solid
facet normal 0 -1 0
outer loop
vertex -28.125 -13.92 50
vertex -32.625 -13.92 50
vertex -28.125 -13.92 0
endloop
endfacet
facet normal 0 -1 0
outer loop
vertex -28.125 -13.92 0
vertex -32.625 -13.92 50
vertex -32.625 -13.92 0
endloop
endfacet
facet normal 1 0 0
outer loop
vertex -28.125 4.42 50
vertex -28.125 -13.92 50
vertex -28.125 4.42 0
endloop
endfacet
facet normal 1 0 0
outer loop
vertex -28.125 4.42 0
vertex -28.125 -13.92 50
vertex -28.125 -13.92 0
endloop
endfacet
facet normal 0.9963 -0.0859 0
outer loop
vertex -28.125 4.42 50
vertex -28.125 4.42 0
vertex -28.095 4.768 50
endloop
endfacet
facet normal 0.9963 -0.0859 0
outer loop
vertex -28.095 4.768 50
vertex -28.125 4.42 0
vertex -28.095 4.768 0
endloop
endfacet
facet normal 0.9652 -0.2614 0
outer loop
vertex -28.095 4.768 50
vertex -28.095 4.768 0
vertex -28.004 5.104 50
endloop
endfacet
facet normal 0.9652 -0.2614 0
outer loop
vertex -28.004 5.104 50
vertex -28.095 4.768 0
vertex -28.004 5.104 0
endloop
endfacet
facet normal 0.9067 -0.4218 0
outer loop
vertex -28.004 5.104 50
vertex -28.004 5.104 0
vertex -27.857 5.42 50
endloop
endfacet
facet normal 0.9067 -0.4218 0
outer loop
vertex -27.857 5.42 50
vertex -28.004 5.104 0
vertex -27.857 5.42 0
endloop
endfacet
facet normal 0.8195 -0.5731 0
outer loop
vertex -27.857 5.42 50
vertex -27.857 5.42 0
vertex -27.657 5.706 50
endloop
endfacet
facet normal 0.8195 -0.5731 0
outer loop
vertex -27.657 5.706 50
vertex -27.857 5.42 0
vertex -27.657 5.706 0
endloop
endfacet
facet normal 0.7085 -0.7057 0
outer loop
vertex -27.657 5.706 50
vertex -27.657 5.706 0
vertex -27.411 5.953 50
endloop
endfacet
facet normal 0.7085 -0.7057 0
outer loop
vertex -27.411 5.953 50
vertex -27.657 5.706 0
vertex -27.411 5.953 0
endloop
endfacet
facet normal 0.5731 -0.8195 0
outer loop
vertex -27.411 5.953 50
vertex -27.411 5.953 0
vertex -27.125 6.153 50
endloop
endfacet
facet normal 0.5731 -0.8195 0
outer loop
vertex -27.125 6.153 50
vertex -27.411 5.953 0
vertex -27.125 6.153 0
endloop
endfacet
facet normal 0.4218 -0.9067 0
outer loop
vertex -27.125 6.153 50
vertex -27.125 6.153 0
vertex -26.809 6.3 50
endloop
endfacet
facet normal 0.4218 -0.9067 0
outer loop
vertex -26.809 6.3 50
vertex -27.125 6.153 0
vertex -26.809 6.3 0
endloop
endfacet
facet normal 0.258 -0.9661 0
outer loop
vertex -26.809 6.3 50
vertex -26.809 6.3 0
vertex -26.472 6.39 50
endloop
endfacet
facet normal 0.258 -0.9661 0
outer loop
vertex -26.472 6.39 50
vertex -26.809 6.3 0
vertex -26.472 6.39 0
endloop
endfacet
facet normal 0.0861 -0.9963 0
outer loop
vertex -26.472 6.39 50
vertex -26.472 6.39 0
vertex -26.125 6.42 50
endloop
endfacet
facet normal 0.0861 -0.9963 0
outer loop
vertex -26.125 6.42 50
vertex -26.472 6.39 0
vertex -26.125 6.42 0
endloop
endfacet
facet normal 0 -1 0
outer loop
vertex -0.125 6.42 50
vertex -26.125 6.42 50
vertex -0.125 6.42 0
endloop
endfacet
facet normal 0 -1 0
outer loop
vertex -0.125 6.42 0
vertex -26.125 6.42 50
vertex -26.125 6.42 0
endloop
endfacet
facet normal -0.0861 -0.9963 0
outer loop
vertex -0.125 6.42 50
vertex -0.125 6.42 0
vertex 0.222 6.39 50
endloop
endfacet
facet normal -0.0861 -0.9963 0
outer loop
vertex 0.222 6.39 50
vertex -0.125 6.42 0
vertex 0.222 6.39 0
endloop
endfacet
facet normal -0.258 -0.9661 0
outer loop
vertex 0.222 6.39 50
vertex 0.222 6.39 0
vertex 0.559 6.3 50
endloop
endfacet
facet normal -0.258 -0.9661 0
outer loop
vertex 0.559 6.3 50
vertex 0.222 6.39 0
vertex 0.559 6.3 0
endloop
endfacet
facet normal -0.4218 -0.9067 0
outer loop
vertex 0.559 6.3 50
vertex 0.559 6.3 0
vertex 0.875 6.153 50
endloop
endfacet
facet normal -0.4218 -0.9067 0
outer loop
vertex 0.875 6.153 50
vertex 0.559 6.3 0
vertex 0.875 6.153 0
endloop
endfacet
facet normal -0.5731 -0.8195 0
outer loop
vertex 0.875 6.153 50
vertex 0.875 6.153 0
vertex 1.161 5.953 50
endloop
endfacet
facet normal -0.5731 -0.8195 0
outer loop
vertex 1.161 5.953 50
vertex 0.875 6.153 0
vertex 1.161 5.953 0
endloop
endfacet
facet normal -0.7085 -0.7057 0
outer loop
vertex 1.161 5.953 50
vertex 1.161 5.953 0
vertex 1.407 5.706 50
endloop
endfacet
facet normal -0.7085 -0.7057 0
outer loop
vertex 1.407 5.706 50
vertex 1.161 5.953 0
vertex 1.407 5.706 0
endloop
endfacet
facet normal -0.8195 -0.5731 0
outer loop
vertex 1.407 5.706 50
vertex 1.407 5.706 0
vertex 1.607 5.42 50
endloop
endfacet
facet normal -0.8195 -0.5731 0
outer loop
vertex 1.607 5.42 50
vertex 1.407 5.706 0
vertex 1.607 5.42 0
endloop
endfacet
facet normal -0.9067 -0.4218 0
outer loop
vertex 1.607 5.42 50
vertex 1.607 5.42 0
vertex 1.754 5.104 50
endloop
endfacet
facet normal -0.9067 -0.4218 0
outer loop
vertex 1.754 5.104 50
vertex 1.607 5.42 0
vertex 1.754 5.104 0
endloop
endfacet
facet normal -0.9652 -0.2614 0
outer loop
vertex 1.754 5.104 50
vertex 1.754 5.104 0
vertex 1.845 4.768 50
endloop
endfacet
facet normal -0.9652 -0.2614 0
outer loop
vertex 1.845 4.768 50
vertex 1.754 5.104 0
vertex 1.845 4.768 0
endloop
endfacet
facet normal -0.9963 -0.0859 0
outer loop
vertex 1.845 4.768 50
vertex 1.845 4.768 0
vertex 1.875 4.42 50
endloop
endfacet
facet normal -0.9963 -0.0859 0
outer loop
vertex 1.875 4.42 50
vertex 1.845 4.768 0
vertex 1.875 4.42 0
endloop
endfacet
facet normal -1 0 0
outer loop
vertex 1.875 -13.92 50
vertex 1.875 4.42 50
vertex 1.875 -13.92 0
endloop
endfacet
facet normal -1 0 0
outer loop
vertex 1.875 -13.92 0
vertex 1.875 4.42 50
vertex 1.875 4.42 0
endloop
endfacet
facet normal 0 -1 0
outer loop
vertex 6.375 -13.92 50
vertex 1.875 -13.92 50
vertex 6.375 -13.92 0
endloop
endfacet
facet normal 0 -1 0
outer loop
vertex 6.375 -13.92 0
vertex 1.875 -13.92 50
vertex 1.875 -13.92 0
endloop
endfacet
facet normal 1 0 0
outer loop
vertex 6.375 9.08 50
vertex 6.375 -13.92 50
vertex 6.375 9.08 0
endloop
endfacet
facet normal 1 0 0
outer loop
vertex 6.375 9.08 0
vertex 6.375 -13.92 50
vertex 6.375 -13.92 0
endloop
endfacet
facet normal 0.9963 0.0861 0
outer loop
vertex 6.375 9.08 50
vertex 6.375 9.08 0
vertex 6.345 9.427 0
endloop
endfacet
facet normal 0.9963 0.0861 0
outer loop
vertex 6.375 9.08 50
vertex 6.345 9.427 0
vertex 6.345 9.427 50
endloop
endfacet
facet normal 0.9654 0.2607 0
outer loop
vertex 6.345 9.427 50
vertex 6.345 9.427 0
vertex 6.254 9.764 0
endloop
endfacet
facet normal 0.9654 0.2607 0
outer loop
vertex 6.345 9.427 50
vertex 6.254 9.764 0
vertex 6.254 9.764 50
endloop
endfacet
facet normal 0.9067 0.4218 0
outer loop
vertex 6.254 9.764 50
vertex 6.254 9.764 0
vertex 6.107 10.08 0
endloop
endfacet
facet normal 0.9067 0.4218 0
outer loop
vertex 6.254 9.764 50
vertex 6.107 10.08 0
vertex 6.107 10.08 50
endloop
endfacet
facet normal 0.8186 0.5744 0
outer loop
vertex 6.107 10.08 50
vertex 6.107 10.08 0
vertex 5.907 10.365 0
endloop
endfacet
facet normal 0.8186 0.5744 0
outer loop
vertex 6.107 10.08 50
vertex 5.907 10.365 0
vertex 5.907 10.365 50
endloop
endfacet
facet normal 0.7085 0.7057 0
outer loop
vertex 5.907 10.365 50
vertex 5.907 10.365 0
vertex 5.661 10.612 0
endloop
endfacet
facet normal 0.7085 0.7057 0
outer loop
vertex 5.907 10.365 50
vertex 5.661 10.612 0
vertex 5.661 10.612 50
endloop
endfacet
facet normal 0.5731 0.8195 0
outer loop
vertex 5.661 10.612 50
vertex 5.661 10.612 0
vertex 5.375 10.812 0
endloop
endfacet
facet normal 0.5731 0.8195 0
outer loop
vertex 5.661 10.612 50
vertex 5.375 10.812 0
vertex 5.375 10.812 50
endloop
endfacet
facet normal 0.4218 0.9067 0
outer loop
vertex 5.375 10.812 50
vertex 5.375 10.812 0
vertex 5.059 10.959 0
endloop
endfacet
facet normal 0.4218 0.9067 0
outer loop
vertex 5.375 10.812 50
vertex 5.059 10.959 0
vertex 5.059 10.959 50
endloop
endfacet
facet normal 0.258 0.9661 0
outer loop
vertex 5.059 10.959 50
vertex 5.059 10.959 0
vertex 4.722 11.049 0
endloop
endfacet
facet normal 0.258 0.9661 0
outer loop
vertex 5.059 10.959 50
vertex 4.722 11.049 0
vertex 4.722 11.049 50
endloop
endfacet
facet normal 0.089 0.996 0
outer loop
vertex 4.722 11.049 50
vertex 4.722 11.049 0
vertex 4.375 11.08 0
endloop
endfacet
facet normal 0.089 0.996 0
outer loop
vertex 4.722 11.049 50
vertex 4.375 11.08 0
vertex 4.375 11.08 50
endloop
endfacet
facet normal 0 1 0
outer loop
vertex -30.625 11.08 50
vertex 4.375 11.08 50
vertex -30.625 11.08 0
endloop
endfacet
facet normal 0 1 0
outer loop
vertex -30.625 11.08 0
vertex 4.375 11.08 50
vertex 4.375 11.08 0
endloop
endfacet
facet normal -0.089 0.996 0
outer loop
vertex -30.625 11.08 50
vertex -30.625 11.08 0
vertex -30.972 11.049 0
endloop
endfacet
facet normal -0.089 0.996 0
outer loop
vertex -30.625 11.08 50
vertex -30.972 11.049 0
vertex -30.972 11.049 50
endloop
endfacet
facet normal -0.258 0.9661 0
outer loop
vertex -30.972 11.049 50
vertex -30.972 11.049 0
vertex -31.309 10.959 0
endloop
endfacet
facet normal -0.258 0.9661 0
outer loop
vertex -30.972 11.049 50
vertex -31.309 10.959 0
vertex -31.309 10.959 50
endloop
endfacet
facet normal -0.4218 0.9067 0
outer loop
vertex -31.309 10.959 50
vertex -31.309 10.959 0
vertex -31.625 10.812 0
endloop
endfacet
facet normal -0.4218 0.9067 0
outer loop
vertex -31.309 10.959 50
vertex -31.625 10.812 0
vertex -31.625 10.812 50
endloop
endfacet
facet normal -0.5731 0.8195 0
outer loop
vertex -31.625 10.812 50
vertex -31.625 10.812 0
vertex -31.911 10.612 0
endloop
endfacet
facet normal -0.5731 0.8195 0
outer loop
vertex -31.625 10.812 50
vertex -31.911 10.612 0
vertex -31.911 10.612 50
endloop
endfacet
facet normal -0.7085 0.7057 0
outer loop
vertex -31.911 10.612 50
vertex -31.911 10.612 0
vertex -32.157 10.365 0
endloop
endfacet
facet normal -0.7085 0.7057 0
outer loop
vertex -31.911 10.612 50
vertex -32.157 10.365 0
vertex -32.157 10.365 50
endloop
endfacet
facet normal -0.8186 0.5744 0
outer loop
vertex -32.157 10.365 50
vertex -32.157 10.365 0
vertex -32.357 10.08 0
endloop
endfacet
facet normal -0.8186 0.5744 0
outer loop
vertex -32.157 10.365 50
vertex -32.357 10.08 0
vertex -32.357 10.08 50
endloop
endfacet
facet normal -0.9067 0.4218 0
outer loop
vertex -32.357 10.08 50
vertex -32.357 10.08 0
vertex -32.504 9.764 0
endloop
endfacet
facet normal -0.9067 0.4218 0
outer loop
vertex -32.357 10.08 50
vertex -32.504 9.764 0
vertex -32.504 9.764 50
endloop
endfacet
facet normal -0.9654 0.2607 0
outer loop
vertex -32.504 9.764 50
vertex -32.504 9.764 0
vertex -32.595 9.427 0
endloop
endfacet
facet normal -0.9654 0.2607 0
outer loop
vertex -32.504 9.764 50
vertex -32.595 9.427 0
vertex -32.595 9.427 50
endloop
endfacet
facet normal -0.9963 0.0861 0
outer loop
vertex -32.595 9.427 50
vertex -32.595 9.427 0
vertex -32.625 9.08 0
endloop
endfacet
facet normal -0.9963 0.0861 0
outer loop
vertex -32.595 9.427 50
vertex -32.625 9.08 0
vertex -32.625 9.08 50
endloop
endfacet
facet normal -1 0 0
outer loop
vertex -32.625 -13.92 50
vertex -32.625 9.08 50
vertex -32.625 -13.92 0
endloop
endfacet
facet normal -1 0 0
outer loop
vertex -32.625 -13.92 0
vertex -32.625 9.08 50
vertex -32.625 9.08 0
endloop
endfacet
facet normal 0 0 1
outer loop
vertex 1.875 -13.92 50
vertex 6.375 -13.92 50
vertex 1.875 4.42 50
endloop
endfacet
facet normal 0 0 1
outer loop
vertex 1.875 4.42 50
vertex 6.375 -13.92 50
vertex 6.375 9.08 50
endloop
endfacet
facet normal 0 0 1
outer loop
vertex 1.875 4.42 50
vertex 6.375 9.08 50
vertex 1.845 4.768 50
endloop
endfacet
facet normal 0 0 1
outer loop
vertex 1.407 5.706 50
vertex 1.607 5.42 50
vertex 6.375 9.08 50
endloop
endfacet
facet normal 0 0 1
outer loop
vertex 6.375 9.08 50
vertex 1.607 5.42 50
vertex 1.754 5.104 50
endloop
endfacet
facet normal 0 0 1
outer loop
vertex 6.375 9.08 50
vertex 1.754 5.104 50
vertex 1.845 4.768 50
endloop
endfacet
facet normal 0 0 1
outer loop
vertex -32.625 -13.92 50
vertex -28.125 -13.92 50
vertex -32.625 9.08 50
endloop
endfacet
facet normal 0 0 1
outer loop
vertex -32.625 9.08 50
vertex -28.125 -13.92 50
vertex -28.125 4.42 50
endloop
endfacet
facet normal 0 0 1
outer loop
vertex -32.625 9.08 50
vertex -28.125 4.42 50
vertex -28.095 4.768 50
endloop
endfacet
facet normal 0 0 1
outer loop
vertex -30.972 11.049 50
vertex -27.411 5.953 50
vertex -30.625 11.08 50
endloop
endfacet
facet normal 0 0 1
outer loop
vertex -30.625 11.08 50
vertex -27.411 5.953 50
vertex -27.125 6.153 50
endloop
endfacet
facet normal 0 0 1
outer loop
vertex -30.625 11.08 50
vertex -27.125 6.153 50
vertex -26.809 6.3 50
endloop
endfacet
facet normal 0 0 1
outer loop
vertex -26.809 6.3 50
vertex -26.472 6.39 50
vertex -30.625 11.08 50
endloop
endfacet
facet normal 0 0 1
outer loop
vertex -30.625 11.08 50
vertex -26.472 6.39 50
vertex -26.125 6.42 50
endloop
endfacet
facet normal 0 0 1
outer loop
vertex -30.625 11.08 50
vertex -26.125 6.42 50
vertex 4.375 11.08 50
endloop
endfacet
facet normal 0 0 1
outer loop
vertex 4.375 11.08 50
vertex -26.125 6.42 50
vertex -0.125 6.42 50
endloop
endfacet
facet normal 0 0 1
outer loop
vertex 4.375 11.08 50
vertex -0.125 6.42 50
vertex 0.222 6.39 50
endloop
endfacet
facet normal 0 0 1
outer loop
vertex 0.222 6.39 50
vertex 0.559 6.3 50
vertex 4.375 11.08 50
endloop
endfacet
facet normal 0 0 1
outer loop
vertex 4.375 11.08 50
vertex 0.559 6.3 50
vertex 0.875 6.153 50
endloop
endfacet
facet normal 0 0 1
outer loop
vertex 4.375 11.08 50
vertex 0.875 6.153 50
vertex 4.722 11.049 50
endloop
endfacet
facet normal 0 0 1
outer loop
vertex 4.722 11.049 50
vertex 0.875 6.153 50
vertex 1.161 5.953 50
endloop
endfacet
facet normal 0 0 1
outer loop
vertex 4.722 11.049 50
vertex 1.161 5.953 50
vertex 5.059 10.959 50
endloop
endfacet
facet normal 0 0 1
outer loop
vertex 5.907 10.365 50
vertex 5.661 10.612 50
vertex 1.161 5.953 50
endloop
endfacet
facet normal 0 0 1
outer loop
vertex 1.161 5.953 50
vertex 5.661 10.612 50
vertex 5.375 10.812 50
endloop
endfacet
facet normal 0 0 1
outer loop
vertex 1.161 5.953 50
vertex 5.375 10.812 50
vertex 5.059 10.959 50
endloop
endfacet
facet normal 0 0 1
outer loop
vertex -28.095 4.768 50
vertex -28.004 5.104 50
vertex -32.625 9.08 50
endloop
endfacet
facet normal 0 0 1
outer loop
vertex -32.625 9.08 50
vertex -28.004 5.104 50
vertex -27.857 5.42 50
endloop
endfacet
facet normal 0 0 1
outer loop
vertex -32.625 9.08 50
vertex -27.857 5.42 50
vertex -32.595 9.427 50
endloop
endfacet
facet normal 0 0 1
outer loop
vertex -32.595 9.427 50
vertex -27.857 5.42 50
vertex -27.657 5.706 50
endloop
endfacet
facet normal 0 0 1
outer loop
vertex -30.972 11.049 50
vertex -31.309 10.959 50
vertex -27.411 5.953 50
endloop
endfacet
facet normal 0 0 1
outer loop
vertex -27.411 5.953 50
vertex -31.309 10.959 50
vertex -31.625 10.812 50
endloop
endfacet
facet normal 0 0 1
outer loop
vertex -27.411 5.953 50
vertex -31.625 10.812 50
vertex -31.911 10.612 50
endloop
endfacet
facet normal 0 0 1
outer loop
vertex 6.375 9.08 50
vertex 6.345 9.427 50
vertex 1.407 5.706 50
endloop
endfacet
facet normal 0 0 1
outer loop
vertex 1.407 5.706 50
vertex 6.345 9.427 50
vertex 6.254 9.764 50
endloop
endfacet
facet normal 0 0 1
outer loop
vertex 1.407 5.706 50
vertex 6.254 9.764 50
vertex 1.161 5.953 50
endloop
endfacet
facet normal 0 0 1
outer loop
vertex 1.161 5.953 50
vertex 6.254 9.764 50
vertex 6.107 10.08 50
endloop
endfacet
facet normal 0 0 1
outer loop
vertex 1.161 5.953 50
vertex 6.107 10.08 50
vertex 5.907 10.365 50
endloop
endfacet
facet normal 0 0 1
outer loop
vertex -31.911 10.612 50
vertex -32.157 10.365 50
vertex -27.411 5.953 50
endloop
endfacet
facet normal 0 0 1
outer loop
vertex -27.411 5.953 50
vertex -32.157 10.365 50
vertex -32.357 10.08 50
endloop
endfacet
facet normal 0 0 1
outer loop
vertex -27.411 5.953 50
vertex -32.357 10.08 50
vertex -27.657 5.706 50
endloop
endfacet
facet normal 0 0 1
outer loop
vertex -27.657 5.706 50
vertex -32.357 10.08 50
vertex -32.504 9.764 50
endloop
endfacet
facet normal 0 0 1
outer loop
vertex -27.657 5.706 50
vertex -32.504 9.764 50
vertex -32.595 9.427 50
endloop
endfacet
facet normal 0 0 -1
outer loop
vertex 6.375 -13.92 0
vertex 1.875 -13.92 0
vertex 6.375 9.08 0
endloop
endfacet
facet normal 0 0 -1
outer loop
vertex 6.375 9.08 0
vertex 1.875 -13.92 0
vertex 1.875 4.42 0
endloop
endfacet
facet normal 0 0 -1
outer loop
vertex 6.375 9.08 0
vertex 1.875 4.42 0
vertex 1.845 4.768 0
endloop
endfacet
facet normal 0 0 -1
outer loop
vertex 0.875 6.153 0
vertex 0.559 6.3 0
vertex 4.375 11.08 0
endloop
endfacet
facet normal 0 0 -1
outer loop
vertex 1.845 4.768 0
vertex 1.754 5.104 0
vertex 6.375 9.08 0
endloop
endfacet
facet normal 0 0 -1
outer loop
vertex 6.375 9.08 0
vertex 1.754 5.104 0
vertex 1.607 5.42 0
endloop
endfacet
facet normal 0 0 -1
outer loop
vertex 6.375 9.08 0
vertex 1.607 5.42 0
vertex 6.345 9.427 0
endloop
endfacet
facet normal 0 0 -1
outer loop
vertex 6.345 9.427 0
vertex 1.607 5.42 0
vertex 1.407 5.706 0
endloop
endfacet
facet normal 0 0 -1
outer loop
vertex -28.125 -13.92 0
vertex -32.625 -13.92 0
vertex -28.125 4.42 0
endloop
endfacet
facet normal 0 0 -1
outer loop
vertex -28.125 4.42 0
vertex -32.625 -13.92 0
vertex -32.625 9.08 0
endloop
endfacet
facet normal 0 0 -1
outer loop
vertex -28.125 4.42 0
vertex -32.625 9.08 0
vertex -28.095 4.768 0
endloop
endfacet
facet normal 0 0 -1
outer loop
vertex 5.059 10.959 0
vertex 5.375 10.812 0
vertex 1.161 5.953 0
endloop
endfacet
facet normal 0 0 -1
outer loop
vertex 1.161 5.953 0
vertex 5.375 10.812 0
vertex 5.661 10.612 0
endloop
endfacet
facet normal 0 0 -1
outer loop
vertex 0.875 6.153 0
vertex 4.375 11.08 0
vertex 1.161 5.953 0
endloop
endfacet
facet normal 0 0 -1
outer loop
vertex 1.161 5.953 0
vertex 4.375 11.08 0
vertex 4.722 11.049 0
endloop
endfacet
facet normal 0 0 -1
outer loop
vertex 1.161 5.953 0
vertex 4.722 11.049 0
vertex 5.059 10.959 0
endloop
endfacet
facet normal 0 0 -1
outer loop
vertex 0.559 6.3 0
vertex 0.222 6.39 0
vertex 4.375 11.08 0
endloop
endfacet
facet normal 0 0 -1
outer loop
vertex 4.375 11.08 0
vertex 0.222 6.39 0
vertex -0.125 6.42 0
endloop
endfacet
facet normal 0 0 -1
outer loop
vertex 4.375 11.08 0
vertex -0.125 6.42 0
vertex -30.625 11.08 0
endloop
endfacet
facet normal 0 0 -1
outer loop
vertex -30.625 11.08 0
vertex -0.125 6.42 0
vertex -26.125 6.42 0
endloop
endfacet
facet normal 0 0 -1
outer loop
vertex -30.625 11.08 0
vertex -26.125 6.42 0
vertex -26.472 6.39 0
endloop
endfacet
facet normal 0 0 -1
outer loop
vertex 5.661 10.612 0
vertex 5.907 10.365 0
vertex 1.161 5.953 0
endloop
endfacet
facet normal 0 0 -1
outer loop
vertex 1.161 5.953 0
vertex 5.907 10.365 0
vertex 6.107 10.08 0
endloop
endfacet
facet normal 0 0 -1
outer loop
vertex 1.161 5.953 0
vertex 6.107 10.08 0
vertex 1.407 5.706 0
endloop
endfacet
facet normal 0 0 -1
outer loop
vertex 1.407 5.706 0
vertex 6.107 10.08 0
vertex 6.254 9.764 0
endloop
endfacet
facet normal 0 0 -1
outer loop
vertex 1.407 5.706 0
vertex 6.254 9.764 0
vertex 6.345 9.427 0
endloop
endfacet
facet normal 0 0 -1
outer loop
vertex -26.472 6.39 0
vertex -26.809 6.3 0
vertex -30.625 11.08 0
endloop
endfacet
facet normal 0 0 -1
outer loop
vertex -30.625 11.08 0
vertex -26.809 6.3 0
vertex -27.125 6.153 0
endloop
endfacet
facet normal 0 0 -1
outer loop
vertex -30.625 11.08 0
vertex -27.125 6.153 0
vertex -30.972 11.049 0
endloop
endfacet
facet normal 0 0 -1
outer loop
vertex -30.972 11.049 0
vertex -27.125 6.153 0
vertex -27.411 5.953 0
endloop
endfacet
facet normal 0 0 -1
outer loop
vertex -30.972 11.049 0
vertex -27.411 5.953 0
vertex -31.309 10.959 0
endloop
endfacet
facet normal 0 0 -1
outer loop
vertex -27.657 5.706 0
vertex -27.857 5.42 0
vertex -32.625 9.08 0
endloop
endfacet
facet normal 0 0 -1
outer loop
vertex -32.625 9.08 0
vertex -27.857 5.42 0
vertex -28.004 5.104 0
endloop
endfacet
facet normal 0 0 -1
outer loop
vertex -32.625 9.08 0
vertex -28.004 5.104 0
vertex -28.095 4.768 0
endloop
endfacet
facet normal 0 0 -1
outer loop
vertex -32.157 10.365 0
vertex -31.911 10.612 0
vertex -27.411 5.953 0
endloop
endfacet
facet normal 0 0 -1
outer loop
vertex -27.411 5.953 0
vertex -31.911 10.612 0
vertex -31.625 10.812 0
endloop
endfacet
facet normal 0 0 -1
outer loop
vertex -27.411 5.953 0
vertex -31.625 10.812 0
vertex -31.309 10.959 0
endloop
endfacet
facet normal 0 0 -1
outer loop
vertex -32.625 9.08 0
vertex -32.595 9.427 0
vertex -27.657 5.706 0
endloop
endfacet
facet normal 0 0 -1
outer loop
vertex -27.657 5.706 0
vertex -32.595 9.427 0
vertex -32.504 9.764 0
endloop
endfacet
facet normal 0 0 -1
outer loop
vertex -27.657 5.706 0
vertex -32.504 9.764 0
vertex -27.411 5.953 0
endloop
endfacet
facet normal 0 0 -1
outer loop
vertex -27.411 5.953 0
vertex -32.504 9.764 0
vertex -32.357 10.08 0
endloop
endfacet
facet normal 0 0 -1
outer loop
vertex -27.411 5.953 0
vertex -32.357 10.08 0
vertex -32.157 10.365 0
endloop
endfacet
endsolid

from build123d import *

# Parameters (mm, degrees)
BOSS_EXTRU_1_DEPTH = 50


with BuildPart() as part:
    # Esquisse2 → Boss.-Extru.1 (new body)
    with BuildSketch(Plane.XY):
        with BuildLine():
            Line((-32.625, -8.920454545), (-32.625, 9.079545455))
            ThreePointArc((-32.625, 9.079545455), (-32.039213562, 10.493759017), (-30.625, 11.079545455))
            Line((-30.625, 11.079545455), (4.375, 11.079545455))
            ThreePointArc((4.375, 11.079545455), (5.789213562, 10.493759017), (6.375, 9.079545455))
            Line((6.375, 9.079545455), (6.375, -13.920454545))
            Line((6.375, -13.920454545), (1.875, -13.920454545))
            Line((1.875, -13.920454545), (1.875, 4.420454545))
            ThreePointArc((1.875, 4.420454545), (1.289213562, 5.834668108), (-0.125, 6.420454545))
            Line((-0.125, 6.420454545), (-26.125, 6.420454545))
            ThreePointArc((-26.125, 6.420454545), (-27.539213562, 5.834668108), (-28.125, 4.420454545))
            Line((-28.125, 4.420454545), (-28.125, -13.920454545))
            Line((-28.125, -13.920454545), (-32.625, -13.920454545))
            Line((-32.625, -13.920454545), (-32.625, -8.920454545))
        make_face()
    extrude(amount=BOSS_EXTRU_1_DEPTH)


solid = part.part
